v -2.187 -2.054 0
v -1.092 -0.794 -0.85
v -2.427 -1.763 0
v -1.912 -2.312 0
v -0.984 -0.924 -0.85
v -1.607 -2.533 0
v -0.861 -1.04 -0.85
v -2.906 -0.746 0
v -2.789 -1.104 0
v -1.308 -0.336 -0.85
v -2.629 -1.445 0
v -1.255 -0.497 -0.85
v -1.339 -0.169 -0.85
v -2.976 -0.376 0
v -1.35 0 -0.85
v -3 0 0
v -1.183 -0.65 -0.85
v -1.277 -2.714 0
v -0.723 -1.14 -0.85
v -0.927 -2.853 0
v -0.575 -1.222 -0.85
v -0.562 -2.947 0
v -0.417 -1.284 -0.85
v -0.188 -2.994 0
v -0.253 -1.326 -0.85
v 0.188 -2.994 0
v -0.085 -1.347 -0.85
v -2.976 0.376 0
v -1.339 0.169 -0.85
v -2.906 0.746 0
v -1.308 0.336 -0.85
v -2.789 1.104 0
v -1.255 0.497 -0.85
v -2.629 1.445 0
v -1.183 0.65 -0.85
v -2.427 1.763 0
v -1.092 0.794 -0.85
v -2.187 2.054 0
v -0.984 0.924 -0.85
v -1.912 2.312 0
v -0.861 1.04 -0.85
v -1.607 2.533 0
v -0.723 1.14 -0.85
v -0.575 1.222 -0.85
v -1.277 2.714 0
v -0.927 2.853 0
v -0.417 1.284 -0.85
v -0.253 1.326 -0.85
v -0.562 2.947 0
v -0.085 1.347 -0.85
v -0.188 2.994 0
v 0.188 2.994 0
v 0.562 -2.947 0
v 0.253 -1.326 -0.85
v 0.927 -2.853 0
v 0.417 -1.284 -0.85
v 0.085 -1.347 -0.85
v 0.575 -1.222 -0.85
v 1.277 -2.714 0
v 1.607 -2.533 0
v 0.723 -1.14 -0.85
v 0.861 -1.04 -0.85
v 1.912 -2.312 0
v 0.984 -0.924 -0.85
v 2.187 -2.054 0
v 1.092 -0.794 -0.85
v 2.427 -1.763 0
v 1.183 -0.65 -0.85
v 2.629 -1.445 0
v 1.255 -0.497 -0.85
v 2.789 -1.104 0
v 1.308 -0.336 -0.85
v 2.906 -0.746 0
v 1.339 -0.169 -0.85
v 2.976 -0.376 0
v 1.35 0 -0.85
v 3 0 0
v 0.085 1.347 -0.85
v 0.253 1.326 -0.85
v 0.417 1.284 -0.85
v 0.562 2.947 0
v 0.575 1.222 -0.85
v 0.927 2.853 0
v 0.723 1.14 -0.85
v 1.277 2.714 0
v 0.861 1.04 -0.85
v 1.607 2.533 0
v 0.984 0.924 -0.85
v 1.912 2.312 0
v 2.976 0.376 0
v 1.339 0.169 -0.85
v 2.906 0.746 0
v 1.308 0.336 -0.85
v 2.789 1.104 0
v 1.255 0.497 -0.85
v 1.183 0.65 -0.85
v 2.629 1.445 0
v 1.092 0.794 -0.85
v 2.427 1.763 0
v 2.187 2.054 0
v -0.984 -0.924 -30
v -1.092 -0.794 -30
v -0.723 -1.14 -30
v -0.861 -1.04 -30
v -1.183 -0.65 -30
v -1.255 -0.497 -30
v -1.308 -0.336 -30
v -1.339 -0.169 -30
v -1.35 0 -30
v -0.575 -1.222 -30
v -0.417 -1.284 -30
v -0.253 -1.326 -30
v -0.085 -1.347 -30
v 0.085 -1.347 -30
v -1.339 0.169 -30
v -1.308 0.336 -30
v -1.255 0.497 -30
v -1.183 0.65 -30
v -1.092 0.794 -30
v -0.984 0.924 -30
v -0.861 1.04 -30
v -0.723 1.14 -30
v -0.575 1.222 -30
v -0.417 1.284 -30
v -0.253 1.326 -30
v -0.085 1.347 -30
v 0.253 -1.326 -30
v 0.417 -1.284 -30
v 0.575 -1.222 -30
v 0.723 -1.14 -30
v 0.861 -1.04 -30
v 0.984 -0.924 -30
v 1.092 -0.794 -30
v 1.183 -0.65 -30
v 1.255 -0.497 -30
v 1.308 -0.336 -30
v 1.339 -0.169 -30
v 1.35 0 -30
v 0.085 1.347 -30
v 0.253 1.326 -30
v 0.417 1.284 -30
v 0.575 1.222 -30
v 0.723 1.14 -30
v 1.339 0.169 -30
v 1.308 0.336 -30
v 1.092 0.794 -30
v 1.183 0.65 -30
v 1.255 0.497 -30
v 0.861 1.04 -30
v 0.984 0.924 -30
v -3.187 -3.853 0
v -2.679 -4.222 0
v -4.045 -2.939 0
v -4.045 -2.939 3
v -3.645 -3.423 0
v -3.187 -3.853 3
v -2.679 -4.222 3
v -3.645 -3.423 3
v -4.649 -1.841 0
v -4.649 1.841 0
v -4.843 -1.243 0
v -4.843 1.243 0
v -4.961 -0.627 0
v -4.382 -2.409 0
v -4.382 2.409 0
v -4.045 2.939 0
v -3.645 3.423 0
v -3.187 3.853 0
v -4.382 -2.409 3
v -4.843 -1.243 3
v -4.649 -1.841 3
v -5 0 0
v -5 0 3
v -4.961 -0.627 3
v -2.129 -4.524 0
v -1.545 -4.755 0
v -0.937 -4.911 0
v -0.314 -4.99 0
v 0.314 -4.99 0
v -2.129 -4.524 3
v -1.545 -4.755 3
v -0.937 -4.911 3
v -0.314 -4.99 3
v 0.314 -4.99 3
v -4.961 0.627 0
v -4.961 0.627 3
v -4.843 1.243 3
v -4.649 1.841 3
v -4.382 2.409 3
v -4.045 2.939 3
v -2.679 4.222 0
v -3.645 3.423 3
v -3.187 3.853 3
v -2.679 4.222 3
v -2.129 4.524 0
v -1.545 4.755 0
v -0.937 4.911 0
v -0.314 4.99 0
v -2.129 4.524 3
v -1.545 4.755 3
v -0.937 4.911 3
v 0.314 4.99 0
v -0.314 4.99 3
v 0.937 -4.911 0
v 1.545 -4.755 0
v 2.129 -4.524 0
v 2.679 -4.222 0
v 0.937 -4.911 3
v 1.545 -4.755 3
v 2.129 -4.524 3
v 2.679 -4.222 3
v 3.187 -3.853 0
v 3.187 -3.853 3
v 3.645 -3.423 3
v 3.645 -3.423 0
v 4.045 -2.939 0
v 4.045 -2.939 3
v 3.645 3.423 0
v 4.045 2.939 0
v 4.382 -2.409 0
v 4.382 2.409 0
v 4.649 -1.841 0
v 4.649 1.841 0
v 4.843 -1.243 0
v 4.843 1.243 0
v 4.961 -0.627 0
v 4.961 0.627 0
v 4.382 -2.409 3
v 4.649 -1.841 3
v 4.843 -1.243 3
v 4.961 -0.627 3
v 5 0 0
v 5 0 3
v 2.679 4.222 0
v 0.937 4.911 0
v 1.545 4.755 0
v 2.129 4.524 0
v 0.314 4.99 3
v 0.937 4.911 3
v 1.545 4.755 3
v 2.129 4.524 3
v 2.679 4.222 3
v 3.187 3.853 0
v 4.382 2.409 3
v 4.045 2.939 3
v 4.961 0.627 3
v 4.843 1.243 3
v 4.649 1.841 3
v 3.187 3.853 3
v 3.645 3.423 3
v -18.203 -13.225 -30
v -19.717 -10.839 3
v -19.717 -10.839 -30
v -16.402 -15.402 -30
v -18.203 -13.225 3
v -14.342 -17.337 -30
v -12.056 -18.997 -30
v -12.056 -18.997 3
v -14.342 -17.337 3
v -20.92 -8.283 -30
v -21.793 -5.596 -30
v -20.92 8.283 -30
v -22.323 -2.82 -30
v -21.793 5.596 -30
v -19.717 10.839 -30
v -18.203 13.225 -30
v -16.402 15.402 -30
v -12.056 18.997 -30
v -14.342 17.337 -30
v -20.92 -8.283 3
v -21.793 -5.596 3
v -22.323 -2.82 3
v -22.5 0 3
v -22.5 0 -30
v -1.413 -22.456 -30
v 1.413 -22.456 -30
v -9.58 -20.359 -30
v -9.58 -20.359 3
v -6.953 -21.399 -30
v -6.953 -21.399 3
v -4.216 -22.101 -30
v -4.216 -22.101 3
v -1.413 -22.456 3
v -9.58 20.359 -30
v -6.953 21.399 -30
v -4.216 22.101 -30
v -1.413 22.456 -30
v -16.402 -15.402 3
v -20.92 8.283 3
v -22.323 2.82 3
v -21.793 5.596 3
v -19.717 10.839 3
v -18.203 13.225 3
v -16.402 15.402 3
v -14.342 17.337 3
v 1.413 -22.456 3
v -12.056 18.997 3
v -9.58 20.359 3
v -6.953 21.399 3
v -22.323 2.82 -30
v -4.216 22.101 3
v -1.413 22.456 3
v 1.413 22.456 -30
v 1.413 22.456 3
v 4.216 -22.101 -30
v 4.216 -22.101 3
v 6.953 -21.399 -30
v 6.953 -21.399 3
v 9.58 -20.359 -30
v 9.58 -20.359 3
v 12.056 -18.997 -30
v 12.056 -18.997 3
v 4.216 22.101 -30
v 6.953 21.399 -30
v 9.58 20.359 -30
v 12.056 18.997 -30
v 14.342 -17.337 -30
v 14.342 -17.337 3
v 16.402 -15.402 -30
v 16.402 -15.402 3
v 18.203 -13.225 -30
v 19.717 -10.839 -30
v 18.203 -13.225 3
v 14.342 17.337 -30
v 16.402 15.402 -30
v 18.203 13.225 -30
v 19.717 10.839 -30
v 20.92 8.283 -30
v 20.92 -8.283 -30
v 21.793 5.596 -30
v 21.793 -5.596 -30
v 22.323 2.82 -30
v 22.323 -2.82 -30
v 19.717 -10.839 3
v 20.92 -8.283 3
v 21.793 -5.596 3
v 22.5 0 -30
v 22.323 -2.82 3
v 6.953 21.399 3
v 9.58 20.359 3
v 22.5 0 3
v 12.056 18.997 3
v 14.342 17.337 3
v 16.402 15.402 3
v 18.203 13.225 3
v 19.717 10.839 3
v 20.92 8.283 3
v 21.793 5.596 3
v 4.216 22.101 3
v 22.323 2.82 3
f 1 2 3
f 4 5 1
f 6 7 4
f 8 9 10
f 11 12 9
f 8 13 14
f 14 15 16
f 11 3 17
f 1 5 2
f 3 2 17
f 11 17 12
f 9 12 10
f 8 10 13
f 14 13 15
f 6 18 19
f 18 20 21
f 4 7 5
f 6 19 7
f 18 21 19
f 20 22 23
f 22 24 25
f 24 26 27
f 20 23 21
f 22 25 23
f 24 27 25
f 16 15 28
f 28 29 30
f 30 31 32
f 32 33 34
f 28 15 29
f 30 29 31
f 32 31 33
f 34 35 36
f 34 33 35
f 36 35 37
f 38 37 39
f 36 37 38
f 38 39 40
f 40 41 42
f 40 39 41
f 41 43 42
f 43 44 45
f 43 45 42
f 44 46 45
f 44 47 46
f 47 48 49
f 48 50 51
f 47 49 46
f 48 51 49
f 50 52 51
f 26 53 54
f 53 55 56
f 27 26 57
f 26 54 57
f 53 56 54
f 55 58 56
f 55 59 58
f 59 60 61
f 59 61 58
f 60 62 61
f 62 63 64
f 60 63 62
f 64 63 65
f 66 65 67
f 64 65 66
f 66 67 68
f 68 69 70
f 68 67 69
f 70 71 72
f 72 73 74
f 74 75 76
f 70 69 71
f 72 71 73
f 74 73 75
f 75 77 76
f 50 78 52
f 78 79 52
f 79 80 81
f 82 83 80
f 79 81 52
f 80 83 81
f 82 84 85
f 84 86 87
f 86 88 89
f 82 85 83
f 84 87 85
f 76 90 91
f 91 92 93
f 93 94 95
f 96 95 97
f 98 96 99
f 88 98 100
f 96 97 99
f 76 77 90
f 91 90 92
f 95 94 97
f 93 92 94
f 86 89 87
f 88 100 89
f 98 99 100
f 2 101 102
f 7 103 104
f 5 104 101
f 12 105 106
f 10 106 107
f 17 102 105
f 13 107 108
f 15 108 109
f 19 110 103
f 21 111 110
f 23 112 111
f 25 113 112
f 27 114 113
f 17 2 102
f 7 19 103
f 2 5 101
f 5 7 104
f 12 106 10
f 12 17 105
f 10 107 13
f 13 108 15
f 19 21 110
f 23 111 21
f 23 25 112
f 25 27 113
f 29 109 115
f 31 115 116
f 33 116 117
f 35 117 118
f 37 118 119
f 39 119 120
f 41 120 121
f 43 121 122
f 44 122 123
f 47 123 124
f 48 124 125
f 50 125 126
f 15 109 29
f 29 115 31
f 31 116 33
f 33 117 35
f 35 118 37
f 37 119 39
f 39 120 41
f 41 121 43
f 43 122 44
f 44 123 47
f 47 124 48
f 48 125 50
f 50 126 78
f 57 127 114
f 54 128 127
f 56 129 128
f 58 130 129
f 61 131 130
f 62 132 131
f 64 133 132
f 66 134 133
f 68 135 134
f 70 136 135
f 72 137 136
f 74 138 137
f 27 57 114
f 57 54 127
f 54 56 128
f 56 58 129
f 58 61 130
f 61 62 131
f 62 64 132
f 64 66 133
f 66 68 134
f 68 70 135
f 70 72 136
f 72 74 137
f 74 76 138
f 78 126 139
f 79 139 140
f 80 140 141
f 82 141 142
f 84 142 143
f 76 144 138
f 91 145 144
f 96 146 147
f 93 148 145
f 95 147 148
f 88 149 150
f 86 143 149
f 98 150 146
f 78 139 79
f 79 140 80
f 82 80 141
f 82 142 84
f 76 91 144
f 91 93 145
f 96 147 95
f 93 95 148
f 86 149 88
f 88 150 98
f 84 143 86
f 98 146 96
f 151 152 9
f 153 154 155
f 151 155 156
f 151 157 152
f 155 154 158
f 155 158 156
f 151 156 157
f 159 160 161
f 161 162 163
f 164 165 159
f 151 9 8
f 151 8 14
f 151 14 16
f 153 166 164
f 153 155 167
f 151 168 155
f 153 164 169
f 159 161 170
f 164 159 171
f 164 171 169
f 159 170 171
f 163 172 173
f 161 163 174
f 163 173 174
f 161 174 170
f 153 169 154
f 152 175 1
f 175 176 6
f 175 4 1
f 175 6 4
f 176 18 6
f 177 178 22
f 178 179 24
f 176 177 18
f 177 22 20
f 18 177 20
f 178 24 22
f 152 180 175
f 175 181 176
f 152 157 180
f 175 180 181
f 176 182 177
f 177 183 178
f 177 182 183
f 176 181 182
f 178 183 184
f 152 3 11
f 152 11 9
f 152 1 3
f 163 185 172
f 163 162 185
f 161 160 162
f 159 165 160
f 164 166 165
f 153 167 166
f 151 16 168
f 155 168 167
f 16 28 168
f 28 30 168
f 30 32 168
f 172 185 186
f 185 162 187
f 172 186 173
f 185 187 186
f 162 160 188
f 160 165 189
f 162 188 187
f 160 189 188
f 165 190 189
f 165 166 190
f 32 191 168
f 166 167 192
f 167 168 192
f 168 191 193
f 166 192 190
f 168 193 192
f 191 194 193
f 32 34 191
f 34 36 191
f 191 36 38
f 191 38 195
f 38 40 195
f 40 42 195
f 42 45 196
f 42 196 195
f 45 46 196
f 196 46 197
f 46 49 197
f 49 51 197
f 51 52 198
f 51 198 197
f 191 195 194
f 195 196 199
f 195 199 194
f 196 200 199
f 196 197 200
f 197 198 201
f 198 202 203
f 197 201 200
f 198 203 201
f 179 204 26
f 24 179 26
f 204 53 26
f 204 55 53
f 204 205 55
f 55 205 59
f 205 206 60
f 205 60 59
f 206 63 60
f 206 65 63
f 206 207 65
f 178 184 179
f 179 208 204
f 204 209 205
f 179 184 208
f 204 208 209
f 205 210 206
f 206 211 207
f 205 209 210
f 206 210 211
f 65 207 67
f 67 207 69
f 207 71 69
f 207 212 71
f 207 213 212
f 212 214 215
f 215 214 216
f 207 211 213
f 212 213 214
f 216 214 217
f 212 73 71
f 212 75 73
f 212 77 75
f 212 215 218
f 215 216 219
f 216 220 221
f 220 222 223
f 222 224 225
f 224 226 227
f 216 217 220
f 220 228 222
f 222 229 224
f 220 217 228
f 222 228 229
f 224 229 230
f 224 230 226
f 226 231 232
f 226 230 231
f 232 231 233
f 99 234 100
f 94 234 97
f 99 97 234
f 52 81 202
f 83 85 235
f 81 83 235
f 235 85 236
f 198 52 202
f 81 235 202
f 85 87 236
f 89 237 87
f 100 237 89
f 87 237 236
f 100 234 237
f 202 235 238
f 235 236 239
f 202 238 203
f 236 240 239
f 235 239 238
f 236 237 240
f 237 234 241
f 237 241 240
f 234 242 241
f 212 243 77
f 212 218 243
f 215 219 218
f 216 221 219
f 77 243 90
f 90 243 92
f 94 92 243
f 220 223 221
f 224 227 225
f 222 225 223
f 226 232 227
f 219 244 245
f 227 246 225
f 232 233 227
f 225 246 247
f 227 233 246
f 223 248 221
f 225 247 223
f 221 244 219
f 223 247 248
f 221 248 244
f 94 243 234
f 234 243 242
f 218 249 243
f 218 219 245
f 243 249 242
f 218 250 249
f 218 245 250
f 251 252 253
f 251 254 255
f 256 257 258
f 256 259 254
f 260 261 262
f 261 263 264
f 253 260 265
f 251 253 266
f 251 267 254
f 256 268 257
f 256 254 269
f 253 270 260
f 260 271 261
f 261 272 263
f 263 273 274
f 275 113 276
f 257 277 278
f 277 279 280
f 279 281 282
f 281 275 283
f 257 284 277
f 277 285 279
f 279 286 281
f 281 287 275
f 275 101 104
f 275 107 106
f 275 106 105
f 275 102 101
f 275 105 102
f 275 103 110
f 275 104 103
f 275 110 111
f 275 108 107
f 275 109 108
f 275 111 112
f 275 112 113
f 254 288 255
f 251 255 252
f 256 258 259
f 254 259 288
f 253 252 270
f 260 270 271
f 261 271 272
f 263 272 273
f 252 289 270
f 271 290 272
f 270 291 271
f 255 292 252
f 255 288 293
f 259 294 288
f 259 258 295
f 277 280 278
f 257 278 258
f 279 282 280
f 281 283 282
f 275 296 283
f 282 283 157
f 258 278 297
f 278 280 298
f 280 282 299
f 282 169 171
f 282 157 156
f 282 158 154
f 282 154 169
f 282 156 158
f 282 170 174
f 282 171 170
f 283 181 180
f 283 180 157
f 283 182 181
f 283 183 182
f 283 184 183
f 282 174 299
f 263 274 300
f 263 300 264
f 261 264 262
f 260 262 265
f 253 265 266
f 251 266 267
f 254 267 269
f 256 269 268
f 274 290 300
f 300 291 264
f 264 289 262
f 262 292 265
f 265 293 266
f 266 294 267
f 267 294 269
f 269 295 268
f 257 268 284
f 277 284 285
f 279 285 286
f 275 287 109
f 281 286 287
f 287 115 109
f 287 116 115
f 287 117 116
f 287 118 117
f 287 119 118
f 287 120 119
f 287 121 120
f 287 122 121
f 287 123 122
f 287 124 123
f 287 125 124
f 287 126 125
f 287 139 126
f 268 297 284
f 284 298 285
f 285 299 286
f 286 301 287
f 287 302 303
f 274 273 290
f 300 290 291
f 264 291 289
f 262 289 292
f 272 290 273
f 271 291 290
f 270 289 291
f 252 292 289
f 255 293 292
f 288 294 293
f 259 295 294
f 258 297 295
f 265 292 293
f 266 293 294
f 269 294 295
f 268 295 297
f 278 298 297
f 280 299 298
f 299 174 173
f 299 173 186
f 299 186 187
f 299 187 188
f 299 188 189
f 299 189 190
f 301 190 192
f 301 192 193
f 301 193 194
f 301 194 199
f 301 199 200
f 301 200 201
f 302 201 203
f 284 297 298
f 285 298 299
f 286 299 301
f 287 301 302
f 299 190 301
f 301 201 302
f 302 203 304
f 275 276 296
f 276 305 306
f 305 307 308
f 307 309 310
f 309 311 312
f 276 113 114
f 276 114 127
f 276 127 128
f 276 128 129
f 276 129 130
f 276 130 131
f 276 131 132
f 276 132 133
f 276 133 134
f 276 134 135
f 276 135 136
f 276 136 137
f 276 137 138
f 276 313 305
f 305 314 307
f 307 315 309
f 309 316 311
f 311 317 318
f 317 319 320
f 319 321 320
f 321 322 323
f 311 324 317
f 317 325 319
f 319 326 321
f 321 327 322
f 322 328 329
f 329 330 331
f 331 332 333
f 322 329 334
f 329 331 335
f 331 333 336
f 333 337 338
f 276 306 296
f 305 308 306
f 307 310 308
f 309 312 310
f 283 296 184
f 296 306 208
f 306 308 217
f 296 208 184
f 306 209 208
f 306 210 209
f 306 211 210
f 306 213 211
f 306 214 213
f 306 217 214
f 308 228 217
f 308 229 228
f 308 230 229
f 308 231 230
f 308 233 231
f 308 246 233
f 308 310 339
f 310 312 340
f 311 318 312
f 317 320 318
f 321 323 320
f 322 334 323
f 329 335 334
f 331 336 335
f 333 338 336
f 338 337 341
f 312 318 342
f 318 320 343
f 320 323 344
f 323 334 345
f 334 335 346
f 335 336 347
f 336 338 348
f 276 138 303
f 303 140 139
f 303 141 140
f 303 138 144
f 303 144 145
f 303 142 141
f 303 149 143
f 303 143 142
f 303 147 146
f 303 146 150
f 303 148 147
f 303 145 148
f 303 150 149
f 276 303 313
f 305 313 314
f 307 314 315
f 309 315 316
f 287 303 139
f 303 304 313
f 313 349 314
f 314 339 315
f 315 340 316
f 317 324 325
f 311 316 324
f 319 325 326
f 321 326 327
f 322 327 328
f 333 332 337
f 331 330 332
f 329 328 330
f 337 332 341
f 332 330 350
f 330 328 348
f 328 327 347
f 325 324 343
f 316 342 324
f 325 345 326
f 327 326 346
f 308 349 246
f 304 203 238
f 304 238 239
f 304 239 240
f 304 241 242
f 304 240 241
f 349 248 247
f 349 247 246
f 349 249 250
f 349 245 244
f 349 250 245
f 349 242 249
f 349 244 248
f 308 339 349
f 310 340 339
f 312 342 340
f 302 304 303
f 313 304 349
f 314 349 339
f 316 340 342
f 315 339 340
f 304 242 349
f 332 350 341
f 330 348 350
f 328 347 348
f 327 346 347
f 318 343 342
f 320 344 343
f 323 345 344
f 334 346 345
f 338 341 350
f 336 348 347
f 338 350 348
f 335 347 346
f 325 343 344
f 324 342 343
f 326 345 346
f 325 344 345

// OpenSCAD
$fn = 50;

difference() {
	union() {
		translate(v = [0, 0, -30.0]) {
			cylinder(h = 33, r = 22.5);
		}
	}
	union() {
		translate(v = [0, 0, 0]) {
			rotate(a = [0, 0, 0]) {
				difference() {
					union() {
						translate(v = [0, 0, -33.0]) {
							cylinder(h = 33, r = 1.0);
						}
						translate(v = [0, 0, -0.85]) {
							cylinder(h = 0.85, r1 = 1.35, r2 = 3.0);
						}
						translate(v = [0, 0, -33.0]) {
							cylinder(h = 33, r = 1.35);
						}
						translate(v = [0, 0, -33.0]) {
							cylinder(h = 33, r = 1.0);
						}
					}
					union();
				}
			}
		}
		#cylinder(h = 3, r = 5.0);
	}
}
